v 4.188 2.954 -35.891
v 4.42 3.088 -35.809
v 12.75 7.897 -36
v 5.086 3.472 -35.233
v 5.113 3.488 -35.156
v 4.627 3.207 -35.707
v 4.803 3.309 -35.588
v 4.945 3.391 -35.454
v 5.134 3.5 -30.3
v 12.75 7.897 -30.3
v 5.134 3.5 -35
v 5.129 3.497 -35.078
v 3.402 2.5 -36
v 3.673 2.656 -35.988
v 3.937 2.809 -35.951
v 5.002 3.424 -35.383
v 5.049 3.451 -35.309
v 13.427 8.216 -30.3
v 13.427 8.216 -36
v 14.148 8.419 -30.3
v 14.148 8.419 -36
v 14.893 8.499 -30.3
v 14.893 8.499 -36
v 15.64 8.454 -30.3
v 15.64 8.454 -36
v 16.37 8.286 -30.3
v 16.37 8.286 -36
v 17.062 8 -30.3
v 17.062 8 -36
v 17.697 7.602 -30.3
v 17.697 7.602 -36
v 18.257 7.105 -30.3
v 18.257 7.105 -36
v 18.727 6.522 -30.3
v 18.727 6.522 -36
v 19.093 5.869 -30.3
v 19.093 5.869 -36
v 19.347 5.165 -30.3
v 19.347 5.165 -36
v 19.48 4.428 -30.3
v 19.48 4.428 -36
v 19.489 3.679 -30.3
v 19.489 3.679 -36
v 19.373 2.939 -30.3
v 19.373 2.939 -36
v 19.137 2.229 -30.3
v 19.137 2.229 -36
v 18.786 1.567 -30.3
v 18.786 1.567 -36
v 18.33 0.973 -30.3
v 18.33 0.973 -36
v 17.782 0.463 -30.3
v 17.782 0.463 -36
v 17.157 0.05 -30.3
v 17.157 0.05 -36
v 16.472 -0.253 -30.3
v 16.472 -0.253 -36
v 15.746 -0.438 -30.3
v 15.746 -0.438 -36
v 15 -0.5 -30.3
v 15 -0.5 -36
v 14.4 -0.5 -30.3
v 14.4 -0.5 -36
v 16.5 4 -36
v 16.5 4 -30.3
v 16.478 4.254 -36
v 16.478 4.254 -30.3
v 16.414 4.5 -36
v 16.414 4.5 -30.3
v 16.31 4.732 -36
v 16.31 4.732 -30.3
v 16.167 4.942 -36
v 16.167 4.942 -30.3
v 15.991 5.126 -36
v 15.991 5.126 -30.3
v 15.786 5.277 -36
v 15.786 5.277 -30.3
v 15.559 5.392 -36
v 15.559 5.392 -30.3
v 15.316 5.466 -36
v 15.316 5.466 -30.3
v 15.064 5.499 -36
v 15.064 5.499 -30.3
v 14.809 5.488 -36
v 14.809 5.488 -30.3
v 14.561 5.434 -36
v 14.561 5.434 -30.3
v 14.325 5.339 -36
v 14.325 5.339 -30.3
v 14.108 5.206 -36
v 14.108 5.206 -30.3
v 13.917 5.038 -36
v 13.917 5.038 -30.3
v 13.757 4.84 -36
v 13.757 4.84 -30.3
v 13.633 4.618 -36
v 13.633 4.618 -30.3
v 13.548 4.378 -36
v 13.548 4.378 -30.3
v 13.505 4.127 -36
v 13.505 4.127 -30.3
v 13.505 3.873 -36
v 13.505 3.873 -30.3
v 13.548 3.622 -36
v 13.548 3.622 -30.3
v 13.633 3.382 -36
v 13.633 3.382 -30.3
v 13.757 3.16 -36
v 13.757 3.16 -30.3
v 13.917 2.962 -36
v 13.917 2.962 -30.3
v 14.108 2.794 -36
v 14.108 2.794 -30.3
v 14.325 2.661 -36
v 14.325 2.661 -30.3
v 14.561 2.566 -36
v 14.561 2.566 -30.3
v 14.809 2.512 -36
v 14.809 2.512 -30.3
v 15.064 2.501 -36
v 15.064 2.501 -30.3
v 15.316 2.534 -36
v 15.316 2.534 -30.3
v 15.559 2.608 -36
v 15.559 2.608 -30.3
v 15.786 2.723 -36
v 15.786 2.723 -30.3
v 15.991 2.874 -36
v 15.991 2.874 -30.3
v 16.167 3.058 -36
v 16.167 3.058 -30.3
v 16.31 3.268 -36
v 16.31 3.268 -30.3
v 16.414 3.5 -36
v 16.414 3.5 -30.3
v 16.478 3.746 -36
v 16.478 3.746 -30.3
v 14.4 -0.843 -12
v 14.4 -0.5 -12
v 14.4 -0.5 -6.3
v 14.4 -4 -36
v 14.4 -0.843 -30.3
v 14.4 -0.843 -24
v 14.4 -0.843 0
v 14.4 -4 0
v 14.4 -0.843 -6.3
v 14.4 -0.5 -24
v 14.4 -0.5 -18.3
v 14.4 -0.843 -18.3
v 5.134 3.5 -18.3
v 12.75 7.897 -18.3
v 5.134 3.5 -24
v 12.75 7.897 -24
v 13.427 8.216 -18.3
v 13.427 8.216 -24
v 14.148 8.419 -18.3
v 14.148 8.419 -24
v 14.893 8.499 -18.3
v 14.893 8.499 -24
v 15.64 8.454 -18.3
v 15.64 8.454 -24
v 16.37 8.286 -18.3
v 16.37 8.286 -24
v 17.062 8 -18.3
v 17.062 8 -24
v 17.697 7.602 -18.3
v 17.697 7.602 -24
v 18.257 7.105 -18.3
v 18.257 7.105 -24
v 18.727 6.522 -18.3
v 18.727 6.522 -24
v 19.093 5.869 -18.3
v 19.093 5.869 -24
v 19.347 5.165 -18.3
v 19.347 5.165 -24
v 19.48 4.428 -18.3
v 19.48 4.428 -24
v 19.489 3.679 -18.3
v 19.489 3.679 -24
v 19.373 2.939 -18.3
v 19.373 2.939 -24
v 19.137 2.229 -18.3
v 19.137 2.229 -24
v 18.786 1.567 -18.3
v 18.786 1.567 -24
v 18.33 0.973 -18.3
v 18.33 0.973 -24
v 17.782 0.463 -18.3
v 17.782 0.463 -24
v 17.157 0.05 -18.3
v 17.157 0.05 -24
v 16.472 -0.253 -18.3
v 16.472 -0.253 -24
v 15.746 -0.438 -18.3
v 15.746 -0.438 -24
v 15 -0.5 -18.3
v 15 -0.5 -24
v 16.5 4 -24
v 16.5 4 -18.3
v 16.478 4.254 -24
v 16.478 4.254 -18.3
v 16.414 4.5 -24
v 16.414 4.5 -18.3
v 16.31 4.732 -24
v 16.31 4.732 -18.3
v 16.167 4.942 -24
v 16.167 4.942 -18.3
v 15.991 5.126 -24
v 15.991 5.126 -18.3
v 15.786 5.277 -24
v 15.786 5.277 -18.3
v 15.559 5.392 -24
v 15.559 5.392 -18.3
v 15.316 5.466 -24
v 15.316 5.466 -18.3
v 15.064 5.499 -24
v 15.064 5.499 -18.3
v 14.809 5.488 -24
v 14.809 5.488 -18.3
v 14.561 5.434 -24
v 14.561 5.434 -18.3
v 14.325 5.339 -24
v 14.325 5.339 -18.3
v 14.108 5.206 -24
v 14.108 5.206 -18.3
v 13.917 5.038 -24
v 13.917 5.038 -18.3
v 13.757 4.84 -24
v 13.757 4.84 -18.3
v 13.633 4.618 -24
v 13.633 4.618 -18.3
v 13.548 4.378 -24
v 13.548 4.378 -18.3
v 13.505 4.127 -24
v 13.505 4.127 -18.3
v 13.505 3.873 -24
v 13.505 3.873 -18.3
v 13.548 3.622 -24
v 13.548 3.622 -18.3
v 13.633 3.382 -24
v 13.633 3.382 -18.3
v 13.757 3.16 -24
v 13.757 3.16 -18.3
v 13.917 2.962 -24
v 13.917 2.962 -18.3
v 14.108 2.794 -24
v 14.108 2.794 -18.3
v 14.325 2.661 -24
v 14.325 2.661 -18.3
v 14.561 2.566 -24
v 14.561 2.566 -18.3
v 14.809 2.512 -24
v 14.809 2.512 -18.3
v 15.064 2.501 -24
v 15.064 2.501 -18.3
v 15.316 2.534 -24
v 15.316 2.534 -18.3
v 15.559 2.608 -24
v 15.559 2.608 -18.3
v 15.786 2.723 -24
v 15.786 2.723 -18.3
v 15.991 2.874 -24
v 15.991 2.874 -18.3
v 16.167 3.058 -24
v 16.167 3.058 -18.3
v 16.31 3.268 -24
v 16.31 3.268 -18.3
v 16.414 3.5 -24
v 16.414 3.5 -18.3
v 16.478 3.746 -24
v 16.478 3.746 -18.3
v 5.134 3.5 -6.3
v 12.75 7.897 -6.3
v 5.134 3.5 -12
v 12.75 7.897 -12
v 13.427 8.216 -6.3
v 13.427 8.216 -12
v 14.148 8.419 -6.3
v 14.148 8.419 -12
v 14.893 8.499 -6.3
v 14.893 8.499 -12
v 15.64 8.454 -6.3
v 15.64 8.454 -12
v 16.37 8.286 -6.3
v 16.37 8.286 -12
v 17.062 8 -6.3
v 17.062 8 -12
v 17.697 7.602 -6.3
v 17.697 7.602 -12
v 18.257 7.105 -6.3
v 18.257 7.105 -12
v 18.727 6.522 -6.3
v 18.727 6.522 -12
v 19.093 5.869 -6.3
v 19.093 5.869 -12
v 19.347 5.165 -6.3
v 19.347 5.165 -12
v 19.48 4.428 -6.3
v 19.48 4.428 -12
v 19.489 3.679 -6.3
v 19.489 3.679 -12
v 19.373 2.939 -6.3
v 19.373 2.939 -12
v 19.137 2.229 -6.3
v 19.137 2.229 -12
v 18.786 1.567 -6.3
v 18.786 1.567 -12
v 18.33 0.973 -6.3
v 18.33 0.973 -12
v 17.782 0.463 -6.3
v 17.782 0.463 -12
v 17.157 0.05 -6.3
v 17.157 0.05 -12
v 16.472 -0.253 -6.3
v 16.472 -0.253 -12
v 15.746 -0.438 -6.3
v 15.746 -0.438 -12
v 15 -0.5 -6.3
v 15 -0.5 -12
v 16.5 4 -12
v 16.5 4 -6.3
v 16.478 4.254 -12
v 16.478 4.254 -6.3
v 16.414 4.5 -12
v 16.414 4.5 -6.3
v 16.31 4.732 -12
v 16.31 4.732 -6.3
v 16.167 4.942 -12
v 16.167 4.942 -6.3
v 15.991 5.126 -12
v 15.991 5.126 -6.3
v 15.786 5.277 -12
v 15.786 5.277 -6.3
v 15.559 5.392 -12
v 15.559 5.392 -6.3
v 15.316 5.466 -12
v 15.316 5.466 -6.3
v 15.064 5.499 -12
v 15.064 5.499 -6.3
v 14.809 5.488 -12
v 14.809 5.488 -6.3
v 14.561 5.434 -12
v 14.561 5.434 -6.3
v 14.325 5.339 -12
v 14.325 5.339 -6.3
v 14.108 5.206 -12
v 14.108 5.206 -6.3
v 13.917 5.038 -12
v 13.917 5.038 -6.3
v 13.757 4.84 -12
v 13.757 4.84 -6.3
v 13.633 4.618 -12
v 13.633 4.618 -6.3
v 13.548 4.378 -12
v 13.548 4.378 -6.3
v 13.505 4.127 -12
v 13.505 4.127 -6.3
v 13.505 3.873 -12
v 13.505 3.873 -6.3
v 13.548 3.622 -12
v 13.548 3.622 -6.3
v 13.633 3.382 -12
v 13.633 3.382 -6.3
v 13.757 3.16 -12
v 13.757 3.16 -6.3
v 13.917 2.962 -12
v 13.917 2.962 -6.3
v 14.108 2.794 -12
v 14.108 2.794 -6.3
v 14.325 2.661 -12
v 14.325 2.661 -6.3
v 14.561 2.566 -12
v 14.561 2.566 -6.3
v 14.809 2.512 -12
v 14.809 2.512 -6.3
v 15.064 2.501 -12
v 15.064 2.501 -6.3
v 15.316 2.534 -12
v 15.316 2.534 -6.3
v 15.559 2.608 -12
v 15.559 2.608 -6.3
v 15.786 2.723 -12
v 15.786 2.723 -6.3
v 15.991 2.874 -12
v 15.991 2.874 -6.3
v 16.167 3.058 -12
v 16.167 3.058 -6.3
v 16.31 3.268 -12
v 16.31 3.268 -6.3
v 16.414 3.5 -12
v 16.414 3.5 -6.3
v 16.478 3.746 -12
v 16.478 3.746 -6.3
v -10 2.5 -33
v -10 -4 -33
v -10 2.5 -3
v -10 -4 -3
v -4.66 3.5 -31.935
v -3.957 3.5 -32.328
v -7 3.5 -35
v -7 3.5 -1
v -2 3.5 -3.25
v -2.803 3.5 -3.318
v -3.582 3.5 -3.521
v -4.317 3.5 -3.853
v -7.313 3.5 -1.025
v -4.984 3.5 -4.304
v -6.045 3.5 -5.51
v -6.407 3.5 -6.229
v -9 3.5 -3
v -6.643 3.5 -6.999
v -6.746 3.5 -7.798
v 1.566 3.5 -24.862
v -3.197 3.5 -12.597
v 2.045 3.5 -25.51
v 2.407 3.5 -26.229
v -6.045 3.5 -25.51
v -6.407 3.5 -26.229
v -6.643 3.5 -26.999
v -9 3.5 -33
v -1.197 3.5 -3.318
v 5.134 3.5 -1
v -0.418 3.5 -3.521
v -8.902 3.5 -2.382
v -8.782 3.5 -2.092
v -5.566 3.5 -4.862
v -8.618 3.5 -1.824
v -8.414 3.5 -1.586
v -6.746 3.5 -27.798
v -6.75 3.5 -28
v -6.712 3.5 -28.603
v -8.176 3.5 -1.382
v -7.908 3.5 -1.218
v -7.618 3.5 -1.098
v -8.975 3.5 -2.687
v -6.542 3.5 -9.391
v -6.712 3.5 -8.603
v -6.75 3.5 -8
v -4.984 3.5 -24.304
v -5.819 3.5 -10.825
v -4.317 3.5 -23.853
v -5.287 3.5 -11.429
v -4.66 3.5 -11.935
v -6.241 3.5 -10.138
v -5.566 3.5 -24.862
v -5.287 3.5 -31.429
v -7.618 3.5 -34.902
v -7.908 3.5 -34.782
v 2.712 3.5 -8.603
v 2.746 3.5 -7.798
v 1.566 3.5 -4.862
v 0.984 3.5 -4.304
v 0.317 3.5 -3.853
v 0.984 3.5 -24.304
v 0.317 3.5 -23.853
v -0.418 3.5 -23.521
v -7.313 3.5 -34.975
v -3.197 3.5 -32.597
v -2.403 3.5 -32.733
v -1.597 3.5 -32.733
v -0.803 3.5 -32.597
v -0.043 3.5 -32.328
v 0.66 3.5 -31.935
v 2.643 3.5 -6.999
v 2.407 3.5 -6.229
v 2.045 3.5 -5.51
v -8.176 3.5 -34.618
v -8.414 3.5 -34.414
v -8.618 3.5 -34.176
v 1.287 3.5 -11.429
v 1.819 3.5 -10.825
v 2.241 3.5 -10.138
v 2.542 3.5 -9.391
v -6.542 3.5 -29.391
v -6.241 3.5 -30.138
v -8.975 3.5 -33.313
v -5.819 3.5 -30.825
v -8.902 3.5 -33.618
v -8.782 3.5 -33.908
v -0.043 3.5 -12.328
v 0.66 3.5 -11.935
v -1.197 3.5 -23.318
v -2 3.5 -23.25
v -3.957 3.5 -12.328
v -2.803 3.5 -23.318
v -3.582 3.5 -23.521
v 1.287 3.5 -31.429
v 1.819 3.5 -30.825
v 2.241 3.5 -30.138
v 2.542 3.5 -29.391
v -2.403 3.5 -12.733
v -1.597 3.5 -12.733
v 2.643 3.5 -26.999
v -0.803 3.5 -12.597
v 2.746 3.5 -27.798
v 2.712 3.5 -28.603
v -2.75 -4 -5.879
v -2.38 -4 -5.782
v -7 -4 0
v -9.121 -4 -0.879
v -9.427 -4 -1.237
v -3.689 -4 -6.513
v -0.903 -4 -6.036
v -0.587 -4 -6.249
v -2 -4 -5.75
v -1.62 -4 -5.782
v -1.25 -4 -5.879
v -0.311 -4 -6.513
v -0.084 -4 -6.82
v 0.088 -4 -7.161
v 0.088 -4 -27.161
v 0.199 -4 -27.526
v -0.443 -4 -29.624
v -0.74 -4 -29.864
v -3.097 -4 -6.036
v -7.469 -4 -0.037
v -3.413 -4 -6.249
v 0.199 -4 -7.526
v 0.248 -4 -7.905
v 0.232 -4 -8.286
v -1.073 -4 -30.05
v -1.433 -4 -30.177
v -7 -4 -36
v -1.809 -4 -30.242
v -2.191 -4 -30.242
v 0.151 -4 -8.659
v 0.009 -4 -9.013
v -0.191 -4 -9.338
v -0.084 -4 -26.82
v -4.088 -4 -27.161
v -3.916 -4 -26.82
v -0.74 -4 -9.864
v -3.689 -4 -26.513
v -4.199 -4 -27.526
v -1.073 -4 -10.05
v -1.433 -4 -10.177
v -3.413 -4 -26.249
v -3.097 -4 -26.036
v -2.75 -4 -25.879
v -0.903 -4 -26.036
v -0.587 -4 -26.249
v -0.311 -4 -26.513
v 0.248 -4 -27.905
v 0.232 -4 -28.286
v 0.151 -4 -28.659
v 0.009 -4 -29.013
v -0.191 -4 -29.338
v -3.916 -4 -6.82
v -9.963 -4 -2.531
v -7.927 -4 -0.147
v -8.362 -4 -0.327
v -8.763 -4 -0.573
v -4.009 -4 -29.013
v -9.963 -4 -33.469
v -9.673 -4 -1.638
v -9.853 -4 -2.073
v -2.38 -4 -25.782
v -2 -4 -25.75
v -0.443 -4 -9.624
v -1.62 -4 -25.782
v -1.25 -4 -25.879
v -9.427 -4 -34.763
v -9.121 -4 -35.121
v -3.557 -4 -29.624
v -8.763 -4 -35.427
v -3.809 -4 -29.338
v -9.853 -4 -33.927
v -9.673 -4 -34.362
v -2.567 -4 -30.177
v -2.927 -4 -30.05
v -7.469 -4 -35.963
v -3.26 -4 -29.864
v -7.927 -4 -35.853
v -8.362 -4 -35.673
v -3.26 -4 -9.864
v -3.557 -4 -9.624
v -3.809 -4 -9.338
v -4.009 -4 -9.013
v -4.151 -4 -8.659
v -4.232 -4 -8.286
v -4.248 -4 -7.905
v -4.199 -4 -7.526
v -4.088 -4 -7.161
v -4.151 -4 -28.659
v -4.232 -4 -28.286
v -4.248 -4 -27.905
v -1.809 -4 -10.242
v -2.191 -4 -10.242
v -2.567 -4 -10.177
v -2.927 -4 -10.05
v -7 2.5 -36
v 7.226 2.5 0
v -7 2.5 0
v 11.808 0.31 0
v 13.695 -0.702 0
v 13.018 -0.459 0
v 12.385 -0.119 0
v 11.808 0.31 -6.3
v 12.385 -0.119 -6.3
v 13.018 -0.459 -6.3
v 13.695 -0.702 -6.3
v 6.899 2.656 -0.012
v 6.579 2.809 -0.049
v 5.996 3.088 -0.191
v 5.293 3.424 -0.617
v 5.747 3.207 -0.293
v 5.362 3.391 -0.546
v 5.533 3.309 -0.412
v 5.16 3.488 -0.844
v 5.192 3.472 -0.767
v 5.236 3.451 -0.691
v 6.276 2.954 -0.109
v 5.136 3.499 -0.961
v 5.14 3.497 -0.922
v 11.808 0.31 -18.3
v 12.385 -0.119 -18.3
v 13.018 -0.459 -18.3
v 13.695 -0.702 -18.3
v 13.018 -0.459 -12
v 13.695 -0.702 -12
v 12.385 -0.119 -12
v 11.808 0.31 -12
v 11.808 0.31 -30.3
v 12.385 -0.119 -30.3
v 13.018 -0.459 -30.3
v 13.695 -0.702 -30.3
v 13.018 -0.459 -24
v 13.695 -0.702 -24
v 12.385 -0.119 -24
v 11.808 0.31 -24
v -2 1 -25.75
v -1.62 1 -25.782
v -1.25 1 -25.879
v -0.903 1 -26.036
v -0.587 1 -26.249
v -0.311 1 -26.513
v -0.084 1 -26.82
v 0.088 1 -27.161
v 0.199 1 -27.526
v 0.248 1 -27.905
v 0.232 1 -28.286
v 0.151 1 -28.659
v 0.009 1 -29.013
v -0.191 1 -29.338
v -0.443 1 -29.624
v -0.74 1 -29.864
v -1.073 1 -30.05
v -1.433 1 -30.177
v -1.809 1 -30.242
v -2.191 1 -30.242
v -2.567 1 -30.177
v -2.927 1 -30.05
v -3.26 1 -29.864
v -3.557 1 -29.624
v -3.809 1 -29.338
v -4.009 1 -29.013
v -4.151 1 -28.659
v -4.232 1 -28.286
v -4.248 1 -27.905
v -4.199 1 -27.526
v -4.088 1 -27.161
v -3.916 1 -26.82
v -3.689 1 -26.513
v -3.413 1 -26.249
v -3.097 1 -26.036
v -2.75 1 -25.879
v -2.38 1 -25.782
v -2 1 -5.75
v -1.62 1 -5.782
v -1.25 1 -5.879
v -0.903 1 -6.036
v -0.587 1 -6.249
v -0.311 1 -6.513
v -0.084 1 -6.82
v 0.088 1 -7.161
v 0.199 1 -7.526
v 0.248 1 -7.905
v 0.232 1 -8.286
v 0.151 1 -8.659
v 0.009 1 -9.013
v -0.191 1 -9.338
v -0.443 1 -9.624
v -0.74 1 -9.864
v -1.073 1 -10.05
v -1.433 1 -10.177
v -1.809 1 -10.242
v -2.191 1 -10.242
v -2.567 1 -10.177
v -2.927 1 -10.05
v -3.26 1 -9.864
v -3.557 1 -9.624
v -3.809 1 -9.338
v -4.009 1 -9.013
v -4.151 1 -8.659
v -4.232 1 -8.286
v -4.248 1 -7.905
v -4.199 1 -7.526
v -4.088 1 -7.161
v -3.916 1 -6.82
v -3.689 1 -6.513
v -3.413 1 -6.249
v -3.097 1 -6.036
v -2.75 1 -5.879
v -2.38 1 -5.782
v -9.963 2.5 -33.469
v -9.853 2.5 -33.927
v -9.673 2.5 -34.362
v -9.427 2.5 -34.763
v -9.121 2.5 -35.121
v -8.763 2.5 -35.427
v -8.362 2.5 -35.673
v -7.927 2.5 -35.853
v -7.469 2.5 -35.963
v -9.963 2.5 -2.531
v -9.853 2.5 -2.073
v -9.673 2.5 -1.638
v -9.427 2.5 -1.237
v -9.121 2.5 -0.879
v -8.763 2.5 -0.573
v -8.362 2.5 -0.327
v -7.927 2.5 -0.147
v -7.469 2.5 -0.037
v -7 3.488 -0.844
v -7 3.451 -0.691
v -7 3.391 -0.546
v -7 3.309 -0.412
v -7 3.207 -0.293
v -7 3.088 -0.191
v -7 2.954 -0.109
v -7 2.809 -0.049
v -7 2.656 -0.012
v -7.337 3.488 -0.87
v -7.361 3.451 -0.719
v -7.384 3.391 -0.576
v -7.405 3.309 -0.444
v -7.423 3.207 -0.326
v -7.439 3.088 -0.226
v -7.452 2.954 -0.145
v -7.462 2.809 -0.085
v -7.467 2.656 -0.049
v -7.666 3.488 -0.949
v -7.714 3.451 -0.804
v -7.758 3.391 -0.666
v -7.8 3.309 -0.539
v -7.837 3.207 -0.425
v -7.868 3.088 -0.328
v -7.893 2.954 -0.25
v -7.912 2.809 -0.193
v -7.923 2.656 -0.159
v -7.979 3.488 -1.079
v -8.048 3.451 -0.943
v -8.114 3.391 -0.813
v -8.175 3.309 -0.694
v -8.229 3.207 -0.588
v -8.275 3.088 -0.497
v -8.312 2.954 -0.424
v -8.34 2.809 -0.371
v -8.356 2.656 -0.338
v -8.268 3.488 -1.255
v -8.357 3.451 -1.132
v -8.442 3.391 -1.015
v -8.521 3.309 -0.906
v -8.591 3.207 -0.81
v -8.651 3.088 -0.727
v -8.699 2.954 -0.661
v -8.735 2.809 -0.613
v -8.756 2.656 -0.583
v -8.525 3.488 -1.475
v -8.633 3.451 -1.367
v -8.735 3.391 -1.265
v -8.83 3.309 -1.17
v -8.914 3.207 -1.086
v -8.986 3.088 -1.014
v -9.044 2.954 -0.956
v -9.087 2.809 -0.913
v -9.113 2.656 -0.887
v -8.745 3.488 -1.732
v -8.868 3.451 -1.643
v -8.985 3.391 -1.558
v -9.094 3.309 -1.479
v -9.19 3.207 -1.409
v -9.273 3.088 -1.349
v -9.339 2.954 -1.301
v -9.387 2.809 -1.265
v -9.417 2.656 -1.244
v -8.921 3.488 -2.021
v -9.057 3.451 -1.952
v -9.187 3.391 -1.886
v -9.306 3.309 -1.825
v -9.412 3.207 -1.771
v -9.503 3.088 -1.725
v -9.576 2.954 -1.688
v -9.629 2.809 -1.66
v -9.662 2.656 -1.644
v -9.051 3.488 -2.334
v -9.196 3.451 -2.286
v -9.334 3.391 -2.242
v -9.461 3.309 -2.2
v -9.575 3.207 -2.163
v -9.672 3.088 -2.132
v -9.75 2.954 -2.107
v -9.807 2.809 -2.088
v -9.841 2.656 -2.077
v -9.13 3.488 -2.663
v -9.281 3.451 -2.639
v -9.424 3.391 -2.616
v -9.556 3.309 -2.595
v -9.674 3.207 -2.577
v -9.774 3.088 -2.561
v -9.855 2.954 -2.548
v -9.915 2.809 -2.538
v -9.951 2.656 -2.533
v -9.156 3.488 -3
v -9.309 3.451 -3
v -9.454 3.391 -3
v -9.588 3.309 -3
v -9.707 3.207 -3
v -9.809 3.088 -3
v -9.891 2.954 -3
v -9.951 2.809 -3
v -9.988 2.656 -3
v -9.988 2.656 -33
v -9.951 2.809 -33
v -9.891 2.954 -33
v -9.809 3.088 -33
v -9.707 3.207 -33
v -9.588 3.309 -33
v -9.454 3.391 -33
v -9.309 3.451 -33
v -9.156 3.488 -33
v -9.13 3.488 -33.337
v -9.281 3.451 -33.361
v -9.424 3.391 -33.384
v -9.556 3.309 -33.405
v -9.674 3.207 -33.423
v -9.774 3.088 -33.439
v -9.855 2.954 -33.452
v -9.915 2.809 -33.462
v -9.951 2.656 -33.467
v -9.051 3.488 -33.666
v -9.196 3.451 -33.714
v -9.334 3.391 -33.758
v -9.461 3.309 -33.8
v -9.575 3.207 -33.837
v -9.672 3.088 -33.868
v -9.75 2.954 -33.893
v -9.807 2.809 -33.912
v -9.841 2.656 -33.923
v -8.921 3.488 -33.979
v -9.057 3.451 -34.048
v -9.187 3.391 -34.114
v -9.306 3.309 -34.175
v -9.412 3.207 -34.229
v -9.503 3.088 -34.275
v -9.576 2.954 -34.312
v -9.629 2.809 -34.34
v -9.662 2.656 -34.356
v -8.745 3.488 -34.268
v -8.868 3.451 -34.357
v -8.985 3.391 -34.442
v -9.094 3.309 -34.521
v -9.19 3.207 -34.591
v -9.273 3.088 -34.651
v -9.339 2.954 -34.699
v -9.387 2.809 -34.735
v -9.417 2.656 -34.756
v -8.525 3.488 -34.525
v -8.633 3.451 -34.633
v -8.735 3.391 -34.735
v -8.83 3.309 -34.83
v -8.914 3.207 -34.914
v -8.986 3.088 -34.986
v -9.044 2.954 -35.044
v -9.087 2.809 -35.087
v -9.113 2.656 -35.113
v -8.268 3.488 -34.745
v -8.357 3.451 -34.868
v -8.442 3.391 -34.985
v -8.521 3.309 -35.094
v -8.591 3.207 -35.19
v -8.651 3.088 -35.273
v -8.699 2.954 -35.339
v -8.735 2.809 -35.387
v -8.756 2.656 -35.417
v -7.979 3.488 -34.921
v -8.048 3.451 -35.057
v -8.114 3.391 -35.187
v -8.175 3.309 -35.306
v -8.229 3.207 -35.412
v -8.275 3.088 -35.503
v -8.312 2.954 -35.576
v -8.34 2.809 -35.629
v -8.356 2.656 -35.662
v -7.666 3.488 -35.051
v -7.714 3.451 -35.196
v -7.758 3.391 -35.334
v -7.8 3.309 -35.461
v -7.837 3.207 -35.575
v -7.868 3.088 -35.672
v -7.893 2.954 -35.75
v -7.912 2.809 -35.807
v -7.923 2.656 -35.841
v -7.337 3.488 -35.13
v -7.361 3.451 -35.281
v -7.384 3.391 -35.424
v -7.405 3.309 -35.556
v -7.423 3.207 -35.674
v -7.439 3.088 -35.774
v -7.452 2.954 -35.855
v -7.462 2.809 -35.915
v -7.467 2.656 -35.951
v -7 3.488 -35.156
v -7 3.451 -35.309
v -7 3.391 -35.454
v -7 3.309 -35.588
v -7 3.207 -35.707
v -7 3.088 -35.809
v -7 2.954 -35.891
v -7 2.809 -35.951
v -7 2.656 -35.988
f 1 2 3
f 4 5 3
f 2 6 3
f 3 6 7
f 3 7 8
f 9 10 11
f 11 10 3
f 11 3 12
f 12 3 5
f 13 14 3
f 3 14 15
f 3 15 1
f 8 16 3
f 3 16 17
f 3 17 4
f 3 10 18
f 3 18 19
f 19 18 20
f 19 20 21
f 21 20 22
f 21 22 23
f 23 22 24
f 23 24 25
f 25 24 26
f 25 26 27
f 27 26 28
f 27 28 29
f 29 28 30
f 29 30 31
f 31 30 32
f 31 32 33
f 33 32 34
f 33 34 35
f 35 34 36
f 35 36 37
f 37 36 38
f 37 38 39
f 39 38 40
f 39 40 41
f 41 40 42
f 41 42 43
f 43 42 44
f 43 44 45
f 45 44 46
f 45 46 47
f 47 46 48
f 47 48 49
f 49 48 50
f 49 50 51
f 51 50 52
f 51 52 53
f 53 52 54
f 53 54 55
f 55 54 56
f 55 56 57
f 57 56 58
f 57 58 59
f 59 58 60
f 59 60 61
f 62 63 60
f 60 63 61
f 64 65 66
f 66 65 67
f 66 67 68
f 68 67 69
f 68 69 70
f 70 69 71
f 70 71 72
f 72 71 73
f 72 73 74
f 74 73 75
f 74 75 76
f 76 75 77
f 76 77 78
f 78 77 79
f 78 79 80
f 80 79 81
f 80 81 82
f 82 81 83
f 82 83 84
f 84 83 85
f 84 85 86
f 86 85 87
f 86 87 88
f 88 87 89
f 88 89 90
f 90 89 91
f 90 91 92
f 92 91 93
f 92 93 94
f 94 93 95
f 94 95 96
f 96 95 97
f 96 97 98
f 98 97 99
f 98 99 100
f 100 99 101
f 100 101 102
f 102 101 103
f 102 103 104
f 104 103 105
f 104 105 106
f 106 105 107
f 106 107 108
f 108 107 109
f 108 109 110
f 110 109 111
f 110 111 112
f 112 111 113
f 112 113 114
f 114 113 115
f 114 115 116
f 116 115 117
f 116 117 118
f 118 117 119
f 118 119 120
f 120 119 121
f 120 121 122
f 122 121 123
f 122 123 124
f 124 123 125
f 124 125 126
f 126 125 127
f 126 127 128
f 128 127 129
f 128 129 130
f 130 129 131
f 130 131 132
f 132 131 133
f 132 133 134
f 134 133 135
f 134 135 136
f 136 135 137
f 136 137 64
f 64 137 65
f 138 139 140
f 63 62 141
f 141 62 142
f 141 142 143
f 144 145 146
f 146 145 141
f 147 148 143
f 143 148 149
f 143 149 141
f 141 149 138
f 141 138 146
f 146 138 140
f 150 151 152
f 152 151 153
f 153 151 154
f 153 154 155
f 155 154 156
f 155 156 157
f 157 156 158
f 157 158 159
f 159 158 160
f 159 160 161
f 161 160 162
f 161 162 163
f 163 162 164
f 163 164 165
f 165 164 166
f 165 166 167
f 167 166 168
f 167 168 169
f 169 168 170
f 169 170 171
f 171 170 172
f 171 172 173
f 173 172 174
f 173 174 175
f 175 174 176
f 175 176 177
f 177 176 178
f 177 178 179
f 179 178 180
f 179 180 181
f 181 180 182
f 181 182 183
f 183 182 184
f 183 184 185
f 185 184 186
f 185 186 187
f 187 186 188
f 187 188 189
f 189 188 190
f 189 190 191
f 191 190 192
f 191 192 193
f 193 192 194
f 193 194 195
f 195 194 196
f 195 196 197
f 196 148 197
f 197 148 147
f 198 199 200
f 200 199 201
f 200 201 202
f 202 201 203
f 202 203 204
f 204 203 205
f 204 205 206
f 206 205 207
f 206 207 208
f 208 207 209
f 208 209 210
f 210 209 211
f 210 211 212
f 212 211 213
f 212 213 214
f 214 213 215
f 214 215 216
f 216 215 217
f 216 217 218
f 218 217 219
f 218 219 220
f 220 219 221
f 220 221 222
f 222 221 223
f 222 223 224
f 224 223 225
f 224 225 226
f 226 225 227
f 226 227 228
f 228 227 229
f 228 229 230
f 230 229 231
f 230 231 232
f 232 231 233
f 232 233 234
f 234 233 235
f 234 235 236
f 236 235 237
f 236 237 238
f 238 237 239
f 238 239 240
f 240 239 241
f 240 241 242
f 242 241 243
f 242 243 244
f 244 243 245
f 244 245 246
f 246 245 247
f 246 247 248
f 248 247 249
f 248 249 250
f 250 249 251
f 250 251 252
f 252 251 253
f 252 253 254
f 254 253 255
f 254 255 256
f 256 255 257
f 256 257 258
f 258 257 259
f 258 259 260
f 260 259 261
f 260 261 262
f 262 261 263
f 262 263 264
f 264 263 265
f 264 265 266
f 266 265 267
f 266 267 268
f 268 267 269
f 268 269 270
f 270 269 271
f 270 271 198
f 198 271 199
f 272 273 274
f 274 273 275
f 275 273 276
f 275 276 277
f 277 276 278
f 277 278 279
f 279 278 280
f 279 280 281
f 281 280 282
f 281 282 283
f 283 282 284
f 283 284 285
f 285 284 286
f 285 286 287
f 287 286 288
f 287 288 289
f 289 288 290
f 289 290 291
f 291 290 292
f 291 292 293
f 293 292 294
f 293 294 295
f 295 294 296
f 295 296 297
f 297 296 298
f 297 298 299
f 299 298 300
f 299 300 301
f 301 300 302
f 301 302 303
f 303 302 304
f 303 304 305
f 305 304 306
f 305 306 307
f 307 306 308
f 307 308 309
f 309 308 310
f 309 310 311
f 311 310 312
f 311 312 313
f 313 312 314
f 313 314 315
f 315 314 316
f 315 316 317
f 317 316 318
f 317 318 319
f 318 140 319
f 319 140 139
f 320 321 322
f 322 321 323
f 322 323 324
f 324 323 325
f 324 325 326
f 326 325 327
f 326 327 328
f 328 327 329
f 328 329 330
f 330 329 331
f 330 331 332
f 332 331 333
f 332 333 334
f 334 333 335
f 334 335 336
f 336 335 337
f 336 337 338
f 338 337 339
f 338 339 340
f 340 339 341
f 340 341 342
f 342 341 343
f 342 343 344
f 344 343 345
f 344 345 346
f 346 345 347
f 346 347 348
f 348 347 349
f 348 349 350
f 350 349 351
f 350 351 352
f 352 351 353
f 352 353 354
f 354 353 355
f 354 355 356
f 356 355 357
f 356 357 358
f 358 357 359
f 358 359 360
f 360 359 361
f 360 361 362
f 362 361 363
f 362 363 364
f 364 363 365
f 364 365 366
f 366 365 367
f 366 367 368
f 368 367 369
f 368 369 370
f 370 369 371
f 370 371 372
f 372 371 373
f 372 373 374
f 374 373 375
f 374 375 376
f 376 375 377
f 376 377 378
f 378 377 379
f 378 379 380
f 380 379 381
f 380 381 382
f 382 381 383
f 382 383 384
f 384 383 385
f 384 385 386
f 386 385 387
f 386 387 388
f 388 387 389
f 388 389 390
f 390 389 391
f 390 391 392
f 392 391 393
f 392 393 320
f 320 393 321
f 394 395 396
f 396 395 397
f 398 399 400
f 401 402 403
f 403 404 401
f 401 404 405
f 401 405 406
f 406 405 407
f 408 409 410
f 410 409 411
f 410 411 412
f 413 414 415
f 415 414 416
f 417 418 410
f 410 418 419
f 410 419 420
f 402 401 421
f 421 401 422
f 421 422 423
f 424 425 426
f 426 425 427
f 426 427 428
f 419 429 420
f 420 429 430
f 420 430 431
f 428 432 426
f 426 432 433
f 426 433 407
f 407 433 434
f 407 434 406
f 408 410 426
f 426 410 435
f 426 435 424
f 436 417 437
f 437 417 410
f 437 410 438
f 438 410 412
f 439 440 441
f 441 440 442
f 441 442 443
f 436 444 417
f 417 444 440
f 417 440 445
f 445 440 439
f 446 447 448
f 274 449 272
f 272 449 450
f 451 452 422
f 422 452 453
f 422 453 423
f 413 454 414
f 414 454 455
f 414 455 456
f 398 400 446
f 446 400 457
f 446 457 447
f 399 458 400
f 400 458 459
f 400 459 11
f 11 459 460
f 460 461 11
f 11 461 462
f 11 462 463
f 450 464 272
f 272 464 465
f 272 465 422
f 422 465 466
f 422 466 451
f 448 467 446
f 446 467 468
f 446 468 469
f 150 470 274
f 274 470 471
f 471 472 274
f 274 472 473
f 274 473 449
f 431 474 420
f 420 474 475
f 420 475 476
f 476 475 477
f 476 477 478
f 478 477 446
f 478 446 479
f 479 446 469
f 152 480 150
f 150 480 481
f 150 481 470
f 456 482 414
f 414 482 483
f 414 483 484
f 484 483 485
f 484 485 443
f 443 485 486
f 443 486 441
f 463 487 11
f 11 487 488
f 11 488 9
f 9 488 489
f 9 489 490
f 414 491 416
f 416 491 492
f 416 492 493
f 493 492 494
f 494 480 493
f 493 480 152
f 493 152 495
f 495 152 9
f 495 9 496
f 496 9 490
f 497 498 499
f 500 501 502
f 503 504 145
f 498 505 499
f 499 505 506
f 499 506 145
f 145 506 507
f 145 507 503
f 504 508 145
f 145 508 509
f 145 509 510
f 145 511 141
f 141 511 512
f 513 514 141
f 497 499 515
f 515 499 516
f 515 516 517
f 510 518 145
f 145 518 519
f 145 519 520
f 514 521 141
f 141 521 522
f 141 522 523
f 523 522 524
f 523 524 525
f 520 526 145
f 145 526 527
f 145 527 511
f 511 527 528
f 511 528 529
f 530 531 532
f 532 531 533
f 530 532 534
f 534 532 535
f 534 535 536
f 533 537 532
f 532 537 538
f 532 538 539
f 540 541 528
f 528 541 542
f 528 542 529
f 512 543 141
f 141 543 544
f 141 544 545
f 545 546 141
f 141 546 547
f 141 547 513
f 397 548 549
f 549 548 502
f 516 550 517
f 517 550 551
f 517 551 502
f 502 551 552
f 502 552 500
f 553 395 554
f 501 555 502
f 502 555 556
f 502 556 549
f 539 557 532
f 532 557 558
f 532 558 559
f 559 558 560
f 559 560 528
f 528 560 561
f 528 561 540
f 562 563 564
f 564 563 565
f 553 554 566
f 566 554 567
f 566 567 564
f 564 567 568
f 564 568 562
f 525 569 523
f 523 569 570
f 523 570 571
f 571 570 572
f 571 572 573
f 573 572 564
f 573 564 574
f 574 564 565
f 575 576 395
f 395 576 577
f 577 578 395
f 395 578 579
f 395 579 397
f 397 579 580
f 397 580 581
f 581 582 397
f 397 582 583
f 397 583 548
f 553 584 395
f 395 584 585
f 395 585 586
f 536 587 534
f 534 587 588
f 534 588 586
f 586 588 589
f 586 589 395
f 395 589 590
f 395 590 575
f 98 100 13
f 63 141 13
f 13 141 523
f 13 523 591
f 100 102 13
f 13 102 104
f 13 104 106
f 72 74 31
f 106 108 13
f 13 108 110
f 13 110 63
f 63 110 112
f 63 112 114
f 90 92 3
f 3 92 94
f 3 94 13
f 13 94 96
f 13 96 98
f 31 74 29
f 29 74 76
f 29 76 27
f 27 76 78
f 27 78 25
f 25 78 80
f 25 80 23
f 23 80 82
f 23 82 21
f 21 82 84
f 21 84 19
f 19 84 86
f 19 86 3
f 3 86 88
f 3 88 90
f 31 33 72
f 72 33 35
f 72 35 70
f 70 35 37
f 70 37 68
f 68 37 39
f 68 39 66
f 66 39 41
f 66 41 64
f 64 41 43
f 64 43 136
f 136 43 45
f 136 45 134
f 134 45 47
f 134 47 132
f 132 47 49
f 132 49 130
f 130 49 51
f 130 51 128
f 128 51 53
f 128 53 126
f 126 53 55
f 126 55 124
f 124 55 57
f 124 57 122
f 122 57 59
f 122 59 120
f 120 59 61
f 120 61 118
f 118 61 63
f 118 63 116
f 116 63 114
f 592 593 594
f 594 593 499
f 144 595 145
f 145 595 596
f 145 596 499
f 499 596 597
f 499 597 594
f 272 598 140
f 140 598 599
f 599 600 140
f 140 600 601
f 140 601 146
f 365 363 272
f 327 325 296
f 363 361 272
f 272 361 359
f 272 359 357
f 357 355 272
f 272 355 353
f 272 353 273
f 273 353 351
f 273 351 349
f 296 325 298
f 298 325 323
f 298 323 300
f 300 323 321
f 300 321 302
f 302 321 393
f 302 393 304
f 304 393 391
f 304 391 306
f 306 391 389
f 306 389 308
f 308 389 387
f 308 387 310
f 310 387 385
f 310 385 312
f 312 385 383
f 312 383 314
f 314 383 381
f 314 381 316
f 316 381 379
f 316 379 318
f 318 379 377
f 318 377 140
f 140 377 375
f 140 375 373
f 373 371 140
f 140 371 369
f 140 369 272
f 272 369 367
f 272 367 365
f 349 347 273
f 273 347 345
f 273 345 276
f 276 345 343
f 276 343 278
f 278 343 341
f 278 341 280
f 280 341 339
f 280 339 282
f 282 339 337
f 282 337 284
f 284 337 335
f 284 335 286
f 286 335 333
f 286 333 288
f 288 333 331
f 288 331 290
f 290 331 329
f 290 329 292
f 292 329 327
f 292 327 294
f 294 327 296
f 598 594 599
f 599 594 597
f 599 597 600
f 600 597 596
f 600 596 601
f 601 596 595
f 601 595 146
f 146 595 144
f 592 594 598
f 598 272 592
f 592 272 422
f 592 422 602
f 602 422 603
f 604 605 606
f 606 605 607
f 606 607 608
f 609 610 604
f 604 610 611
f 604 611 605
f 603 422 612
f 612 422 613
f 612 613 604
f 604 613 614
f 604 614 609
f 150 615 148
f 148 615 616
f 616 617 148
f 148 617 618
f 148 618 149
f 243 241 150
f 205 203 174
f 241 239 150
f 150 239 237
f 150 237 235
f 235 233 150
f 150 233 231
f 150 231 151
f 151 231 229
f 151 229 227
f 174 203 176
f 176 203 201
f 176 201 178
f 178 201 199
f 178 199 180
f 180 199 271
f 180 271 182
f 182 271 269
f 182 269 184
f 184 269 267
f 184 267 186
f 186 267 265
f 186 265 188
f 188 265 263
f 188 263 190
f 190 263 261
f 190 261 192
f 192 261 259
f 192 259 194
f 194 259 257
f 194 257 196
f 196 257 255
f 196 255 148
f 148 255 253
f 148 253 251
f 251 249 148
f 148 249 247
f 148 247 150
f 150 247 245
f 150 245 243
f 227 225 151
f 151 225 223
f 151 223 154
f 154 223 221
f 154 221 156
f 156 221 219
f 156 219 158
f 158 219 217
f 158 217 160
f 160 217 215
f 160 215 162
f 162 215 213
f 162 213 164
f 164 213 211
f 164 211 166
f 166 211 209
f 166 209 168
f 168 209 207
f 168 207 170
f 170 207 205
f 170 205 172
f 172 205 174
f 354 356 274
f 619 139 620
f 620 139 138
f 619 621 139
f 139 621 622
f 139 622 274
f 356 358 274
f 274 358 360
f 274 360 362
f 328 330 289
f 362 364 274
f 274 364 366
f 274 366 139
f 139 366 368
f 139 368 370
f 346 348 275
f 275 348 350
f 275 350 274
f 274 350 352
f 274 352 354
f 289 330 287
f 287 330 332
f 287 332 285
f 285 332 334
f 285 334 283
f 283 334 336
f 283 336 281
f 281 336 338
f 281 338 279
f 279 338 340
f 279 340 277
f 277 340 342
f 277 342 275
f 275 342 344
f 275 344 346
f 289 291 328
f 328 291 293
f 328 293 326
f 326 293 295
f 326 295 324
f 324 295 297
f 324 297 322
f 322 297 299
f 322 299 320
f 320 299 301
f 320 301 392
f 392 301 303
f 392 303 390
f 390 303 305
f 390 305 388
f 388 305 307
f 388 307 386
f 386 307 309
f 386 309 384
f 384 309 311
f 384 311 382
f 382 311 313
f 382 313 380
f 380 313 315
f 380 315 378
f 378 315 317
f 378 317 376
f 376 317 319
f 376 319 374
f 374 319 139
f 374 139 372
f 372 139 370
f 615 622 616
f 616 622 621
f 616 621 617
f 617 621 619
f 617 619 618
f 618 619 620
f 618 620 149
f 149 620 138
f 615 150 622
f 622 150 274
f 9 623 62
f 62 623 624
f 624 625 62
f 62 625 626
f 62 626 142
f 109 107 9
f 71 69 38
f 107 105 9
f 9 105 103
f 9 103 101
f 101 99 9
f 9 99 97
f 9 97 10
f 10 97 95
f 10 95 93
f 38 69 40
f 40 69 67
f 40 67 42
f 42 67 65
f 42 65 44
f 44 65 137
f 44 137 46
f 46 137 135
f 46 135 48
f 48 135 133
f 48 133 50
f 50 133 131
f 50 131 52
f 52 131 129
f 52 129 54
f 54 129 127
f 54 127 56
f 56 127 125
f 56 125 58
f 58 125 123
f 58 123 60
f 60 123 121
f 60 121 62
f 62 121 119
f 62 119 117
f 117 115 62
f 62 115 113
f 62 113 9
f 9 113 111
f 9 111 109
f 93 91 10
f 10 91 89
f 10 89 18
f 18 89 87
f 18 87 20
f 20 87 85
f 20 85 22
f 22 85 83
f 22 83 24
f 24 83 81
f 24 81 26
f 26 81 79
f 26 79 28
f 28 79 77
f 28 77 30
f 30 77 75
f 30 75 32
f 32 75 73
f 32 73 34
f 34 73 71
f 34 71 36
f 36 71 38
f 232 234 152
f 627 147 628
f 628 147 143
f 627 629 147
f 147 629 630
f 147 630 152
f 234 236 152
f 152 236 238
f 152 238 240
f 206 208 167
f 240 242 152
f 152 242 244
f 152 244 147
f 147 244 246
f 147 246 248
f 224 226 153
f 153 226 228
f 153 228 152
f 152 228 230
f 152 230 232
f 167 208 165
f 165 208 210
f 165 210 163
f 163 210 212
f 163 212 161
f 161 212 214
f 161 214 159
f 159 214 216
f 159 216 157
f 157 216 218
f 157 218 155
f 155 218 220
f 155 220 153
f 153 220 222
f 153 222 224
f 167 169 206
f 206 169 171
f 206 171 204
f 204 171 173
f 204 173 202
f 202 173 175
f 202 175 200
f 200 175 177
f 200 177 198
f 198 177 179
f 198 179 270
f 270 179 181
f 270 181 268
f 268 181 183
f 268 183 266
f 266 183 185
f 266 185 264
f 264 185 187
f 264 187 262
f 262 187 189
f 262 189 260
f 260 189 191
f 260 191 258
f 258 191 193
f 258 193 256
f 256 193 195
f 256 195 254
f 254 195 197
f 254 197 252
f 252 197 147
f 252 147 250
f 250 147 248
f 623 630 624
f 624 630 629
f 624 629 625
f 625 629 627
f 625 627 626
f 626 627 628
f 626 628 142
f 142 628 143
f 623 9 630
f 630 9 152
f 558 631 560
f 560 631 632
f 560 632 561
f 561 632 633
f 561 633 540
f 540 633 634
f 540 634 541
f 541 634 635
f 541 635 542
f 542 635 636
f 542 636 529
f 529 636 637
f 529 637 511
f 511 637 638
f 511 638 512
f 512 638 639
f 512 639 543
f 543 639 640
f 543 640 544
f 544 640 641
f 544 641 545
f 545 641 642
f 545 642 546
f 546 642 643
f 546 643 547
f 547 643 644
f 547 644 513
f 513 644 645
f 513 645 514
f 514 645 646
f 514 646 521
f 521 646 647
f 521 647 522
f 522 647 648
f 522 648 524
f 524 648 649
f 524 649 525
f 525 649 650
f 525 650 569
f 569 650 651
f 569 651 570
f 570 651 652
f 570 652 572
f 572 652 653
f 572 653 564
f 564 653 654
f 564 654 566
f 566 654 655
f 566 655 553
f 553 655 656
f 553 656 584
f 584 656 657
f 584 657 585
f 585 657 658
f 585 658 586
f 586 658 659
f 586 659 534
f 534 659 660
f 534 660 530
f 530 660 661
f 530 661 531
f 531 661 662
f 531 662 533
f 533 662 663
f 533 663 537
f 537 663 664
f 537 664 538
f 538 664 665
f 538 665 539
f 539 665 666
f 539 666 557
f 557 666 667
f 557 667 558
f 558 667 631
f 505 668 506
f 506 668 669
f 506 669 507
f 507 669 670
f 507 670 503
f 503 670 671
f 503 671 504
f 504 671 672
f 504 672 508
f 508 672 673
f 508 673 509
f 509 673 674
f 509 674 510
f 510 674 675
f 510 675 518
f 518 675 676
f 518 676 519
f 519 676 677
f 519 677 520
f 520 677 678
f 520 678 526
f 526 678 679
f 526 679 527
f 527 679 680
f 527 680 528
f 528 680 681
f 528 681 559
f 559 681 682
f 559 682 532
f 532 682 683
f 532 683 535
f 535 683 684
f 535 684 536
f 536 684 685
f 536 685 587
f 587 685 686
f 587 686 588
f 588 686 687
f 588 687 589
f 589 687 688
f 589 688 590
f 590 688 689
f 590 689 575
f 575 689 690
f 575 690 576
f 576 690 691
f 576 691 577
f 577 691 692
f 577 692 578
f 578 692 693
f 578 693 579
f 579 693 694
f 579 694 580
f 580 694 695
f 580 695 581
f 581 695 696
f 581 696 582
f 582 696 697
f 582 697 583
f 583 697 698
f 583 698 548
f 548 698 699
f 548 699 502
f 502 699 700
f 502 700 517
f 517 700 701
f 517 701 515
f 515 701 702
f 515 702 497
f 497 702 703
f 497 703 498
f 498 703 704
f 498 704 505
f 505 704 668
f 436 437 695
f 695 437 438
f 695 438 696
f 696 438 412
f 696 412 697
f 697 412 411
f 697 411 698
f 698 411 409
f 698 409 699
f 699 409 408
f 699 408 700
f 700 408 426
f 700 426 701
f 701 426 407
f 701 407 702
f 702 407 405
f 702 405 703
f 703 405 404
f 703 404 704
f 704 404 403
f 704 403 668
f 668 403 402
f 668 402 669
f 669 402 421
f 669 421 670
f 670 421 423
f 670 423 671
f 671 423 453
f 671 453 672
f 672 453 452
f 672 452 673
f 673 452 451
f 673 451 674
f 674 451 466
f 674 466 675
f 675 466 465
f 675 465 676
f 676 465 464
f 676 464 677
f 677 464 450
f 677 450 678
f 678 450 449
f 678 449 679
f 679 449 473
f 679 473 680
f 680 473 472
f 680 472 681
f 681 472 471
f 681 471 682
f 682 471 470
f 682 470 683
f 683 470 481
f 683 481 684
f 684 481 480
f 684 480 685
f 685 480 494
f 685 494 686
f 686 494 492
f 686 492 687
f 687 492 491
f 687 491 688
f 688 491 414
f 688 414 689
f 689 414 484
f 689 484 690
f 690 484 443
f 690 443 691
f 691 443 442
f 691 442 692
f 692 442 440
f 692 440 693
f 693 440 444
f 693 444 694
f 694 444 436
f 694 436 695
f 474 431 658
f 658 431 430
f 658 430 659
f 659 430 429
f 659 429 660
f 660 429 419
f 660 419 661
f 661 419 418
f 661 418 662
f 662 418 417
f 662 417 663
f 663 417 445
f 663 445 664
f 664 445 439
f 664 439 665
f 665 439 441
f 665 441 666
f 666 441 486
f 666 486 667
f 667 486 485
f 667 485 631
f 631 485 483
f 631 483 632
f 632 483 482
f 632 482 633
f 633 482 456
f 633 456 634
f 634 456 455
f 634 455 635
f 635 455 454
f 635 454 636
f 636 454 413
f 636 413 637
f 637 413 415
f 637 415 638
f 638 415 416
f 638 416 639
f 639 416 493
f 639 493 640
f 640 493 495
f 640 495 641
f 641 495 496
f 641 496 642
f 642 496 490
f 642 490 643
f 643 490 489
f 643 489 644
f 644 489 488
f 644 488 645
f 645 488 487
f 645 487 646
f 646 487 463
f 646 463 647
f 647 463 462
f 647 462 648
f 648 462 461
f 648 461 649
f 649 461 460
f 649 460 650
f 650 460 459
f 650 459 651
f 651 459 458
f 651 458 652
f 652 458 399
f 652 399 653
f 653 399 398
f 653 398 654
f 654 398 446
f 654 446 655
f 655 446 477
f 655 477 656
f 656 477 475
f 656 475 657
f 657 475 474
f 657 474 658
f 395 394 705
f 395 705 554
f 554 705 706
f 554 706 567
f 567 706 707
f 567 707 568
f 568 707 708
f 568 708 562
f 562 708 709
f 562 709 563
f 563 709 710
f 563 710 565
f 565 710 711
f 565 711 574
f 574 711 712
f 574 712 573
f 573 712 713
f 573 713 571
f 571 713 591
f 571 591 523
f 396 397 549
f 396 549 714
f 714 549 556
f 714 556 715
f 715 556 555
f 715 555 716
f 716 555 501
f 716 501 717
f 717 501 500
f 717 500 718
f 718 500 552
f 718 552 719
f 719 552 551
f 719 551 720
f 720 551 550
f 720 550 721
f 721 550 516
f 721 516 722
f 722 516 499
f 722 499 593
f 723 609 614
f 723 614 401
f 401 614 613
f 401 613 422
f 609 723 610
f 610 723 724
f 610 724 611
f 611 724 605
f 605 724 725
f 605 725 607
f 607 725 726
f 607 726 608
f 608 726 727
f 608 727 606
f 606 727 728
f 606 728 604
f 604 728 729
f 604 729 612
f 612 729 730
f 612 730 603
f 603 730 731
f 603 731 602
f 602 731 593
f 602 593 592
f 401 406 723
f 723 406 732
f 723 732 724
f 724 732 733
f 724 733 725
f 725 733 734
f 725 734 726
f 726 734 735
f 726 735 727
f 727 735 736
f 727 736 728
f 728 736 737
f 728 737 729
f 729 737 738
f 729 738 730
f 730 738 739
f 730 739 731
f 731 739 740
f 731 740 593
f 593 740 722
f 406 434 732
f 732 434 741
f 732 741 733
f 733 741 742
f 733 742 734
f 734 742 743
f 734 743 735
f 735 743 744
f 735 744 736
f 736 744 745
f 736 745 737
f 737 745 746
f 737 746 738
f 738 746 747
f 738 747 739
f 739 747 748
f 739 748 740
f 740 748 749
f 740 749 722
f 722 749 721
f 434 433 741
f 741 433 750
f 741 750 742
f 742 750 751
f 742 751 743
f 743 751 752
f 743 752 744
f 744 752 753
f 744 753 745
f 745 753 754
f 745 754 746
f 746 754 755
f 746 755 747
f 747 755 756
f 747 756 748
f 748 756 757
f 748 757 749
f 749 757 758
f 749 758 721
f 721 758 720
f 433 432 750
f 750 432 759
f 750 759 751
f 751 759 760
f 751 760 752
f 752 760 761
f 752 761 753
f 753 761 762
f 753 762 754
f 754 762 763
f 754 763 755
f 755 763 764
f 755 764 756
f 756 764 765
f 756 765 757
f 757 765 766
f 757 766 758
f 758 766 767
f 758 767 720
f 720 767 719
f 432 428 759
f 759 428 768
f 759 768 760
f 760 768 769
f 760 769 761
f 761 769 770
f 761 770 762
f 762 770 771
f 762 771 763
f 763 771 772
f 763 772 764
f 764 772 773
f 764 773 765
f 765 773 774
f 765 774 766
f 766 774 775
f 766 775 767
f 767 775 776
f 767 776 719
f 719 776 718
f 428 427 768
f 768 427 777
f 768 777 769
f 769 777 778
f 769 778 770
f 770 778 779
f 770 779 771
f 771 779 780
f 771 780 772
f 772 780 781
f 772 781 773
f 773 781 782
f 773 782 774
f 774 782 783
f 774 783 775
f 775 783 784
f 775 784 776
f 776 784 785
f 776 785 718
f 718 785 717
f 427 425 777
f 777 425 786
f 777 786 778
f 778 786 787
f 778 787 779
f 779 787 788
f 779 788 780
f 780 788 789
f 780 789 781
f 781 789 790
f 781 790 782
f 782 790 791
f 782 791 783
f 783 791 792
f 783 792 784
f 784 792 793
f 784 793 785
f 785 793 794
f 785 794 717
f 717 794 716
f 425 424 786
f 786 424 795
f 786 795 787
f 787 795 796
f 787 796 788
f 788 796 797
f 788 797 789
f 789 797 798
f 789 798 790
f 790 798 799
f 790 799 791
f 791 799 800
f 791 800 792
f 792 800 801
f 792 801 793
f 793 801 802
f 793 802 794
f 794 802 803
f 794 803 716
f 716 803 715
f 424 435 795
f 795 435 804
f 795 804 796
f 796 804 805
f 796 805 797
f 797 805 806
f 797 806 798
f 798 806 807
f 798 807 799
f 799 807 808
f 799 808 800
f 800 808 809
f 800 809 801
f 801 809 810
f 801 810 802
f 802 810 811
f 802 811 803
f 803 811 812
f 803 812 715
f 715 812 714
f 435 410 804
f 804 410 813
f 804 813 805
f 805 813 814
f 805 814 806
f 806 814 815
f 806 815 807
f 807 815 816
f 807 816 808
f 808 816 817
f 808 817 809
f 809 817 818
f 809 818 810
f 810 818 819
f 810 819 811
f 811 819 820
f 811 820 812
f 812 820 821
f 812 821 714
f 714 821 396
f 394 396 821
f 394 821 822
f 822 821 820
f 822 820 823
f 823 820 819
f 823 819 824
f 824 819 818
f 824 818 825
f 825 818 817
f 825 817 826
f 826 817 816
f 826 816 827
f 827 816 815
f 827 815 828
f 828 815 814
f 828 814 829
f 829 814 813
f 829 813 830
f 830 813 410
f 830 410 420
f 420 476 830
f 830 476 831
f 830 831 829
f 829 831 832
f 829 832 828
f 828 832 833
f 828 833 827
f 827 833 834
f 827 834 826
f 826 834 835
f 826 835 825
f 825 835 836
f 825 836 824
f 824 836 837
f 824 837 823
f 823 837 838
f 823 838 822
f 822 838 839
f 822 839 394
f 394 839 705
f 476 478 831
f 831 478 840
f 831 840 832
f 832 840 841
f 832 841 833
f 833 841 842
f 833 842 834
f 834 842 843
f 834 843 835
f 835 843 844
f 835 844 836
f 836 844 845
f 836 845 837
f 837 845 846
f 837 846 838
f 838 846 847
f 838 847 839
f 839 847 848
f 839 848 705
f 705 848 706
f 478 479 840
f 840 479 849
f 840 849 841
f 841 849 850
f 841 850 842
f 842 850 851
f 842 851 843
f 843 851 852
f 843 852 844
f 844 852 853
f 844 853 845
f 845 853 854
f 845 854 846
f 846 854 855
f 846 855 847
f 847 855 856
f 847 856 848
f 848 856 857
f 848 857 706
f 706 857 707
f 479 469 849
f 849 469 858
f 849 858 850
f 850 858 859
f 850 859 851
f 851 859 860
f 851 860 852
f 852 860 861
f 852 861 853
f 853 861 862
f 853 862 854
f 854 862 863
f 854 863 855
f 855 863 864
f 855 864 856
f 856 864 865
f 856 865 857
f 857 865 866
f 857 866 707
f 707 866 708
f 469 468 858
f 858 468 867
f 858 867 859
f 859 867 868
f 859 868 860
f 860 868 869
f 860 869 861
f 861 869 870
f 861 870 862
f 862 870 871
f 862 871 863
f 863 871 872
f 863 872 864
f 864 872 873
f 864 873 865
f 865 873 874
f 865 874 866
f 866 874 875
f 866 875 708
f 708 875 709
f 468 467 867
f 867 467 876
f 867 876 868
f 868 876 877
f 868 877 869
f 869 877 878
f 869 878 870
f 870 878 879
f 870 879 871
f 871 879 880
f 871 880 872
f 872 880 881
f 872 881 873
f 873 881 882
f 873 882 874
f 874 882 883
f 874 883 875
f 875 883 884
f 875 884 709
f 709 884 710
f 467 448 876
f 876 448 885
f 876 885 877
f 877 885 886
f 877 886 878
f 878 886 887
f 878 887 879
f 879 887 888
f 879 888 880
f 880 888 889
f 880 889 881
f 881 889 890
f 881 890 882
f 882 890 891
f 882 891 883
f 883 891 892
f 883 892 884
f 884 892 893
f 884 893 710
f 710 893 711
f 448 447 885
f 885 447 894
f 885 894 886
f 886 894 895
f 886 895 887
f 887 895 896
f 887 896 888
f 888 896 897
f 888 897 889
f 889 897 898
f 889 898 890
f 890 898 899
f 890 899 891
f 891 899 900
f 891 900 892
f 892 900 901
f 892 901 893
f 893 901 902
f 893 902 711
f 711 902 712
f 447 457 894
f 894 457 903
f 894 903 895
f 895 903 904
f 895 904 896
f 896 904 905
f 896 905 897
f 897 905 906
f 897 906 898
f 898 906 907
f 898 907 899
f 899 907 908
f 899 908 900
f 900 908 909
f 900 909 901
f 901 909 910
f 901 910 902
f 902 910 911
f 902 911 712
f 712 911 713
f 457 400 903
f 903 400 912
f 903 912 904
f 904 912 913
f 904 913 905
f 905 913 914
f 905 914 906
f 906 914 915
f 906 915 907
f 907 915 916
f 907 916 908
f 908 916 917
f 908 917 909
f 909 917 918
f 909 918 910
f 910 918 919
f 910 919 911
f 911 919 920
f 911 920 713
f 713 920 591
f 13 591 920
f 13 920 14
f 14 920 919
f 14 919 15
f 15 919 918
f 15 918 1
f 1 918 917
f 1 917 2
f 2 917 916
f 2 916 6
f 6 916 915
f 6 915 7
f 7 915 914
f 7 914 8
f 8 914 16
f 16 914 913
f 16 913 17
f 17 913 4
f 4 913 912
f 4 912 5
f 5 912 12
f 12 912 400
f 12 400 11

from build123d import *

# Parameters (mm, degrees)
CROQUIS1_R              = 1.5
SALIENTE_EXTRUIR1_DEPTH = 36
CORTAR_EXTRUIR1_DEPTH   = 6.3
MATRIZL1_COUNT          = 3
MATRIZL1_PITCH          = 12
CROQUIS3_R              = 2.25
CORTAR_EXTRUIR2_DEPTH   = 42.623310777
CHAFL_N1_SIZE           = 2.5
REDONDEO1_R             = 3
REDONDEO2_R             = 1


with BuildPart() as part:
    # Croquis1 → Saliente-Extruir1 (new body)
    with BuildSketch(Plane.XY):
        with BuildLine():
            Line((12.75, 7.897114317), (5.133974596, 3.5))
            Line((5.133974596, 3.5), (-10, 3.5))
            Line((-10, 3.5), (-10, -4))
            Line((-10, -4), (14.4, -4))
            Line((14.4, -4), (14.4, -0.5))
            Line((14.4, -0.5), (15, -0.5))
            ThreePointArc((15, -0.5), (19.346666218, 5.164685703), (12.75, 7.897114317))
        make_face()
        with Locations((15, 4)):
            Circle(CROQUIS1_R, mode=Mode.SUBTRACT)
    extrude(amount=-SALIENTE_EXTRUIR1_DEPTH)

    # Croquis2 → Cortar-Extruir1 (cut)
    with BuildSketch(Plane.XY):
        with BuildLine():
            Line((14.4, -0.842600764), (15, -0.5))
            ThreePointArc((15, -0.5), (19.346666218, 5.164685703), (12.75, 7.897114317))
            Line((12.75, 7.897114317), (5.133974596, 3.5))
            Line((5.133974596, 3.5), (11.80761005, 0.309549003))
            ThreePointArc((11.80761005, 0.309549003), (13.018228657, -0.459076642), (14.4, -0.842600764))
        make_face()
    cortar_extruir1 = extrude(amount=-CORTAR_EXTRUIR1_DEPTH, mode=Mode.SUBTRACT)

    # MatrizL1: Cortar-Extruir1 ×3
    with Locations(*[(0, 0, -i * MATRIZL1_PITCH) for i in range(1, MATRIZL1_COUNT)]):
        add(cortar_extruir1, mode=Mode.SUBTRACT)

    # Croquis3 → Cortar-Extruir2 (cut, through all)
    with BuildSketch(Plane(origin=(0, 3.5, 0), x_dir=(1, 0, 0), z_dir=(0, 1, 0))):
        with Locations(Location((-2, 28, 0), (0, 0, 270))):
            Circle(CROQUIS3_R)
        with Locations(Location((-2, 8, 0), (0, 0, 270))):
            Circle(CROQUIS3_R)
    extrude(amount=-CORTAR_EXTRUIR2_DEPTH, mode=Mode.SUBTRACT)

    # Chaflán1
    chafl_n1_edges = [part.edges().sort_by_distance(p)[0] for p in [
        (-2, 3.5, -30.25),
        (-2, 3.5, -10.25),
    ]]
    chamfer(chafl_n1_edges, length=CHAFL_N1_SIZE)

    # Redondeo1
    redondeo1_edges = [part.edges().sort_by_distance(p)[0] for p in [
        (-10, -0.25, -36),
        (-10, -0.25, 0),
    ]]
    fillet(redondeo1_edges, radius=REDONDEO1_R)

    # Redondeo2
    redondeo2_edges = [part.edges().sort_by_distance(p)[0] for p in [
        (-10, 3.5, -18),
        (-9.121320344, 3.5, -0.878679656),
        (-9.121320344, 3.5, -35.121320344),
        (-0.933012702, 3.5, -36),
        (-0.933012702, 3.5, 0),
    ]]
    fillet(redondeo2_edges, radius=REDONDEO2_R)


solid = part.part
